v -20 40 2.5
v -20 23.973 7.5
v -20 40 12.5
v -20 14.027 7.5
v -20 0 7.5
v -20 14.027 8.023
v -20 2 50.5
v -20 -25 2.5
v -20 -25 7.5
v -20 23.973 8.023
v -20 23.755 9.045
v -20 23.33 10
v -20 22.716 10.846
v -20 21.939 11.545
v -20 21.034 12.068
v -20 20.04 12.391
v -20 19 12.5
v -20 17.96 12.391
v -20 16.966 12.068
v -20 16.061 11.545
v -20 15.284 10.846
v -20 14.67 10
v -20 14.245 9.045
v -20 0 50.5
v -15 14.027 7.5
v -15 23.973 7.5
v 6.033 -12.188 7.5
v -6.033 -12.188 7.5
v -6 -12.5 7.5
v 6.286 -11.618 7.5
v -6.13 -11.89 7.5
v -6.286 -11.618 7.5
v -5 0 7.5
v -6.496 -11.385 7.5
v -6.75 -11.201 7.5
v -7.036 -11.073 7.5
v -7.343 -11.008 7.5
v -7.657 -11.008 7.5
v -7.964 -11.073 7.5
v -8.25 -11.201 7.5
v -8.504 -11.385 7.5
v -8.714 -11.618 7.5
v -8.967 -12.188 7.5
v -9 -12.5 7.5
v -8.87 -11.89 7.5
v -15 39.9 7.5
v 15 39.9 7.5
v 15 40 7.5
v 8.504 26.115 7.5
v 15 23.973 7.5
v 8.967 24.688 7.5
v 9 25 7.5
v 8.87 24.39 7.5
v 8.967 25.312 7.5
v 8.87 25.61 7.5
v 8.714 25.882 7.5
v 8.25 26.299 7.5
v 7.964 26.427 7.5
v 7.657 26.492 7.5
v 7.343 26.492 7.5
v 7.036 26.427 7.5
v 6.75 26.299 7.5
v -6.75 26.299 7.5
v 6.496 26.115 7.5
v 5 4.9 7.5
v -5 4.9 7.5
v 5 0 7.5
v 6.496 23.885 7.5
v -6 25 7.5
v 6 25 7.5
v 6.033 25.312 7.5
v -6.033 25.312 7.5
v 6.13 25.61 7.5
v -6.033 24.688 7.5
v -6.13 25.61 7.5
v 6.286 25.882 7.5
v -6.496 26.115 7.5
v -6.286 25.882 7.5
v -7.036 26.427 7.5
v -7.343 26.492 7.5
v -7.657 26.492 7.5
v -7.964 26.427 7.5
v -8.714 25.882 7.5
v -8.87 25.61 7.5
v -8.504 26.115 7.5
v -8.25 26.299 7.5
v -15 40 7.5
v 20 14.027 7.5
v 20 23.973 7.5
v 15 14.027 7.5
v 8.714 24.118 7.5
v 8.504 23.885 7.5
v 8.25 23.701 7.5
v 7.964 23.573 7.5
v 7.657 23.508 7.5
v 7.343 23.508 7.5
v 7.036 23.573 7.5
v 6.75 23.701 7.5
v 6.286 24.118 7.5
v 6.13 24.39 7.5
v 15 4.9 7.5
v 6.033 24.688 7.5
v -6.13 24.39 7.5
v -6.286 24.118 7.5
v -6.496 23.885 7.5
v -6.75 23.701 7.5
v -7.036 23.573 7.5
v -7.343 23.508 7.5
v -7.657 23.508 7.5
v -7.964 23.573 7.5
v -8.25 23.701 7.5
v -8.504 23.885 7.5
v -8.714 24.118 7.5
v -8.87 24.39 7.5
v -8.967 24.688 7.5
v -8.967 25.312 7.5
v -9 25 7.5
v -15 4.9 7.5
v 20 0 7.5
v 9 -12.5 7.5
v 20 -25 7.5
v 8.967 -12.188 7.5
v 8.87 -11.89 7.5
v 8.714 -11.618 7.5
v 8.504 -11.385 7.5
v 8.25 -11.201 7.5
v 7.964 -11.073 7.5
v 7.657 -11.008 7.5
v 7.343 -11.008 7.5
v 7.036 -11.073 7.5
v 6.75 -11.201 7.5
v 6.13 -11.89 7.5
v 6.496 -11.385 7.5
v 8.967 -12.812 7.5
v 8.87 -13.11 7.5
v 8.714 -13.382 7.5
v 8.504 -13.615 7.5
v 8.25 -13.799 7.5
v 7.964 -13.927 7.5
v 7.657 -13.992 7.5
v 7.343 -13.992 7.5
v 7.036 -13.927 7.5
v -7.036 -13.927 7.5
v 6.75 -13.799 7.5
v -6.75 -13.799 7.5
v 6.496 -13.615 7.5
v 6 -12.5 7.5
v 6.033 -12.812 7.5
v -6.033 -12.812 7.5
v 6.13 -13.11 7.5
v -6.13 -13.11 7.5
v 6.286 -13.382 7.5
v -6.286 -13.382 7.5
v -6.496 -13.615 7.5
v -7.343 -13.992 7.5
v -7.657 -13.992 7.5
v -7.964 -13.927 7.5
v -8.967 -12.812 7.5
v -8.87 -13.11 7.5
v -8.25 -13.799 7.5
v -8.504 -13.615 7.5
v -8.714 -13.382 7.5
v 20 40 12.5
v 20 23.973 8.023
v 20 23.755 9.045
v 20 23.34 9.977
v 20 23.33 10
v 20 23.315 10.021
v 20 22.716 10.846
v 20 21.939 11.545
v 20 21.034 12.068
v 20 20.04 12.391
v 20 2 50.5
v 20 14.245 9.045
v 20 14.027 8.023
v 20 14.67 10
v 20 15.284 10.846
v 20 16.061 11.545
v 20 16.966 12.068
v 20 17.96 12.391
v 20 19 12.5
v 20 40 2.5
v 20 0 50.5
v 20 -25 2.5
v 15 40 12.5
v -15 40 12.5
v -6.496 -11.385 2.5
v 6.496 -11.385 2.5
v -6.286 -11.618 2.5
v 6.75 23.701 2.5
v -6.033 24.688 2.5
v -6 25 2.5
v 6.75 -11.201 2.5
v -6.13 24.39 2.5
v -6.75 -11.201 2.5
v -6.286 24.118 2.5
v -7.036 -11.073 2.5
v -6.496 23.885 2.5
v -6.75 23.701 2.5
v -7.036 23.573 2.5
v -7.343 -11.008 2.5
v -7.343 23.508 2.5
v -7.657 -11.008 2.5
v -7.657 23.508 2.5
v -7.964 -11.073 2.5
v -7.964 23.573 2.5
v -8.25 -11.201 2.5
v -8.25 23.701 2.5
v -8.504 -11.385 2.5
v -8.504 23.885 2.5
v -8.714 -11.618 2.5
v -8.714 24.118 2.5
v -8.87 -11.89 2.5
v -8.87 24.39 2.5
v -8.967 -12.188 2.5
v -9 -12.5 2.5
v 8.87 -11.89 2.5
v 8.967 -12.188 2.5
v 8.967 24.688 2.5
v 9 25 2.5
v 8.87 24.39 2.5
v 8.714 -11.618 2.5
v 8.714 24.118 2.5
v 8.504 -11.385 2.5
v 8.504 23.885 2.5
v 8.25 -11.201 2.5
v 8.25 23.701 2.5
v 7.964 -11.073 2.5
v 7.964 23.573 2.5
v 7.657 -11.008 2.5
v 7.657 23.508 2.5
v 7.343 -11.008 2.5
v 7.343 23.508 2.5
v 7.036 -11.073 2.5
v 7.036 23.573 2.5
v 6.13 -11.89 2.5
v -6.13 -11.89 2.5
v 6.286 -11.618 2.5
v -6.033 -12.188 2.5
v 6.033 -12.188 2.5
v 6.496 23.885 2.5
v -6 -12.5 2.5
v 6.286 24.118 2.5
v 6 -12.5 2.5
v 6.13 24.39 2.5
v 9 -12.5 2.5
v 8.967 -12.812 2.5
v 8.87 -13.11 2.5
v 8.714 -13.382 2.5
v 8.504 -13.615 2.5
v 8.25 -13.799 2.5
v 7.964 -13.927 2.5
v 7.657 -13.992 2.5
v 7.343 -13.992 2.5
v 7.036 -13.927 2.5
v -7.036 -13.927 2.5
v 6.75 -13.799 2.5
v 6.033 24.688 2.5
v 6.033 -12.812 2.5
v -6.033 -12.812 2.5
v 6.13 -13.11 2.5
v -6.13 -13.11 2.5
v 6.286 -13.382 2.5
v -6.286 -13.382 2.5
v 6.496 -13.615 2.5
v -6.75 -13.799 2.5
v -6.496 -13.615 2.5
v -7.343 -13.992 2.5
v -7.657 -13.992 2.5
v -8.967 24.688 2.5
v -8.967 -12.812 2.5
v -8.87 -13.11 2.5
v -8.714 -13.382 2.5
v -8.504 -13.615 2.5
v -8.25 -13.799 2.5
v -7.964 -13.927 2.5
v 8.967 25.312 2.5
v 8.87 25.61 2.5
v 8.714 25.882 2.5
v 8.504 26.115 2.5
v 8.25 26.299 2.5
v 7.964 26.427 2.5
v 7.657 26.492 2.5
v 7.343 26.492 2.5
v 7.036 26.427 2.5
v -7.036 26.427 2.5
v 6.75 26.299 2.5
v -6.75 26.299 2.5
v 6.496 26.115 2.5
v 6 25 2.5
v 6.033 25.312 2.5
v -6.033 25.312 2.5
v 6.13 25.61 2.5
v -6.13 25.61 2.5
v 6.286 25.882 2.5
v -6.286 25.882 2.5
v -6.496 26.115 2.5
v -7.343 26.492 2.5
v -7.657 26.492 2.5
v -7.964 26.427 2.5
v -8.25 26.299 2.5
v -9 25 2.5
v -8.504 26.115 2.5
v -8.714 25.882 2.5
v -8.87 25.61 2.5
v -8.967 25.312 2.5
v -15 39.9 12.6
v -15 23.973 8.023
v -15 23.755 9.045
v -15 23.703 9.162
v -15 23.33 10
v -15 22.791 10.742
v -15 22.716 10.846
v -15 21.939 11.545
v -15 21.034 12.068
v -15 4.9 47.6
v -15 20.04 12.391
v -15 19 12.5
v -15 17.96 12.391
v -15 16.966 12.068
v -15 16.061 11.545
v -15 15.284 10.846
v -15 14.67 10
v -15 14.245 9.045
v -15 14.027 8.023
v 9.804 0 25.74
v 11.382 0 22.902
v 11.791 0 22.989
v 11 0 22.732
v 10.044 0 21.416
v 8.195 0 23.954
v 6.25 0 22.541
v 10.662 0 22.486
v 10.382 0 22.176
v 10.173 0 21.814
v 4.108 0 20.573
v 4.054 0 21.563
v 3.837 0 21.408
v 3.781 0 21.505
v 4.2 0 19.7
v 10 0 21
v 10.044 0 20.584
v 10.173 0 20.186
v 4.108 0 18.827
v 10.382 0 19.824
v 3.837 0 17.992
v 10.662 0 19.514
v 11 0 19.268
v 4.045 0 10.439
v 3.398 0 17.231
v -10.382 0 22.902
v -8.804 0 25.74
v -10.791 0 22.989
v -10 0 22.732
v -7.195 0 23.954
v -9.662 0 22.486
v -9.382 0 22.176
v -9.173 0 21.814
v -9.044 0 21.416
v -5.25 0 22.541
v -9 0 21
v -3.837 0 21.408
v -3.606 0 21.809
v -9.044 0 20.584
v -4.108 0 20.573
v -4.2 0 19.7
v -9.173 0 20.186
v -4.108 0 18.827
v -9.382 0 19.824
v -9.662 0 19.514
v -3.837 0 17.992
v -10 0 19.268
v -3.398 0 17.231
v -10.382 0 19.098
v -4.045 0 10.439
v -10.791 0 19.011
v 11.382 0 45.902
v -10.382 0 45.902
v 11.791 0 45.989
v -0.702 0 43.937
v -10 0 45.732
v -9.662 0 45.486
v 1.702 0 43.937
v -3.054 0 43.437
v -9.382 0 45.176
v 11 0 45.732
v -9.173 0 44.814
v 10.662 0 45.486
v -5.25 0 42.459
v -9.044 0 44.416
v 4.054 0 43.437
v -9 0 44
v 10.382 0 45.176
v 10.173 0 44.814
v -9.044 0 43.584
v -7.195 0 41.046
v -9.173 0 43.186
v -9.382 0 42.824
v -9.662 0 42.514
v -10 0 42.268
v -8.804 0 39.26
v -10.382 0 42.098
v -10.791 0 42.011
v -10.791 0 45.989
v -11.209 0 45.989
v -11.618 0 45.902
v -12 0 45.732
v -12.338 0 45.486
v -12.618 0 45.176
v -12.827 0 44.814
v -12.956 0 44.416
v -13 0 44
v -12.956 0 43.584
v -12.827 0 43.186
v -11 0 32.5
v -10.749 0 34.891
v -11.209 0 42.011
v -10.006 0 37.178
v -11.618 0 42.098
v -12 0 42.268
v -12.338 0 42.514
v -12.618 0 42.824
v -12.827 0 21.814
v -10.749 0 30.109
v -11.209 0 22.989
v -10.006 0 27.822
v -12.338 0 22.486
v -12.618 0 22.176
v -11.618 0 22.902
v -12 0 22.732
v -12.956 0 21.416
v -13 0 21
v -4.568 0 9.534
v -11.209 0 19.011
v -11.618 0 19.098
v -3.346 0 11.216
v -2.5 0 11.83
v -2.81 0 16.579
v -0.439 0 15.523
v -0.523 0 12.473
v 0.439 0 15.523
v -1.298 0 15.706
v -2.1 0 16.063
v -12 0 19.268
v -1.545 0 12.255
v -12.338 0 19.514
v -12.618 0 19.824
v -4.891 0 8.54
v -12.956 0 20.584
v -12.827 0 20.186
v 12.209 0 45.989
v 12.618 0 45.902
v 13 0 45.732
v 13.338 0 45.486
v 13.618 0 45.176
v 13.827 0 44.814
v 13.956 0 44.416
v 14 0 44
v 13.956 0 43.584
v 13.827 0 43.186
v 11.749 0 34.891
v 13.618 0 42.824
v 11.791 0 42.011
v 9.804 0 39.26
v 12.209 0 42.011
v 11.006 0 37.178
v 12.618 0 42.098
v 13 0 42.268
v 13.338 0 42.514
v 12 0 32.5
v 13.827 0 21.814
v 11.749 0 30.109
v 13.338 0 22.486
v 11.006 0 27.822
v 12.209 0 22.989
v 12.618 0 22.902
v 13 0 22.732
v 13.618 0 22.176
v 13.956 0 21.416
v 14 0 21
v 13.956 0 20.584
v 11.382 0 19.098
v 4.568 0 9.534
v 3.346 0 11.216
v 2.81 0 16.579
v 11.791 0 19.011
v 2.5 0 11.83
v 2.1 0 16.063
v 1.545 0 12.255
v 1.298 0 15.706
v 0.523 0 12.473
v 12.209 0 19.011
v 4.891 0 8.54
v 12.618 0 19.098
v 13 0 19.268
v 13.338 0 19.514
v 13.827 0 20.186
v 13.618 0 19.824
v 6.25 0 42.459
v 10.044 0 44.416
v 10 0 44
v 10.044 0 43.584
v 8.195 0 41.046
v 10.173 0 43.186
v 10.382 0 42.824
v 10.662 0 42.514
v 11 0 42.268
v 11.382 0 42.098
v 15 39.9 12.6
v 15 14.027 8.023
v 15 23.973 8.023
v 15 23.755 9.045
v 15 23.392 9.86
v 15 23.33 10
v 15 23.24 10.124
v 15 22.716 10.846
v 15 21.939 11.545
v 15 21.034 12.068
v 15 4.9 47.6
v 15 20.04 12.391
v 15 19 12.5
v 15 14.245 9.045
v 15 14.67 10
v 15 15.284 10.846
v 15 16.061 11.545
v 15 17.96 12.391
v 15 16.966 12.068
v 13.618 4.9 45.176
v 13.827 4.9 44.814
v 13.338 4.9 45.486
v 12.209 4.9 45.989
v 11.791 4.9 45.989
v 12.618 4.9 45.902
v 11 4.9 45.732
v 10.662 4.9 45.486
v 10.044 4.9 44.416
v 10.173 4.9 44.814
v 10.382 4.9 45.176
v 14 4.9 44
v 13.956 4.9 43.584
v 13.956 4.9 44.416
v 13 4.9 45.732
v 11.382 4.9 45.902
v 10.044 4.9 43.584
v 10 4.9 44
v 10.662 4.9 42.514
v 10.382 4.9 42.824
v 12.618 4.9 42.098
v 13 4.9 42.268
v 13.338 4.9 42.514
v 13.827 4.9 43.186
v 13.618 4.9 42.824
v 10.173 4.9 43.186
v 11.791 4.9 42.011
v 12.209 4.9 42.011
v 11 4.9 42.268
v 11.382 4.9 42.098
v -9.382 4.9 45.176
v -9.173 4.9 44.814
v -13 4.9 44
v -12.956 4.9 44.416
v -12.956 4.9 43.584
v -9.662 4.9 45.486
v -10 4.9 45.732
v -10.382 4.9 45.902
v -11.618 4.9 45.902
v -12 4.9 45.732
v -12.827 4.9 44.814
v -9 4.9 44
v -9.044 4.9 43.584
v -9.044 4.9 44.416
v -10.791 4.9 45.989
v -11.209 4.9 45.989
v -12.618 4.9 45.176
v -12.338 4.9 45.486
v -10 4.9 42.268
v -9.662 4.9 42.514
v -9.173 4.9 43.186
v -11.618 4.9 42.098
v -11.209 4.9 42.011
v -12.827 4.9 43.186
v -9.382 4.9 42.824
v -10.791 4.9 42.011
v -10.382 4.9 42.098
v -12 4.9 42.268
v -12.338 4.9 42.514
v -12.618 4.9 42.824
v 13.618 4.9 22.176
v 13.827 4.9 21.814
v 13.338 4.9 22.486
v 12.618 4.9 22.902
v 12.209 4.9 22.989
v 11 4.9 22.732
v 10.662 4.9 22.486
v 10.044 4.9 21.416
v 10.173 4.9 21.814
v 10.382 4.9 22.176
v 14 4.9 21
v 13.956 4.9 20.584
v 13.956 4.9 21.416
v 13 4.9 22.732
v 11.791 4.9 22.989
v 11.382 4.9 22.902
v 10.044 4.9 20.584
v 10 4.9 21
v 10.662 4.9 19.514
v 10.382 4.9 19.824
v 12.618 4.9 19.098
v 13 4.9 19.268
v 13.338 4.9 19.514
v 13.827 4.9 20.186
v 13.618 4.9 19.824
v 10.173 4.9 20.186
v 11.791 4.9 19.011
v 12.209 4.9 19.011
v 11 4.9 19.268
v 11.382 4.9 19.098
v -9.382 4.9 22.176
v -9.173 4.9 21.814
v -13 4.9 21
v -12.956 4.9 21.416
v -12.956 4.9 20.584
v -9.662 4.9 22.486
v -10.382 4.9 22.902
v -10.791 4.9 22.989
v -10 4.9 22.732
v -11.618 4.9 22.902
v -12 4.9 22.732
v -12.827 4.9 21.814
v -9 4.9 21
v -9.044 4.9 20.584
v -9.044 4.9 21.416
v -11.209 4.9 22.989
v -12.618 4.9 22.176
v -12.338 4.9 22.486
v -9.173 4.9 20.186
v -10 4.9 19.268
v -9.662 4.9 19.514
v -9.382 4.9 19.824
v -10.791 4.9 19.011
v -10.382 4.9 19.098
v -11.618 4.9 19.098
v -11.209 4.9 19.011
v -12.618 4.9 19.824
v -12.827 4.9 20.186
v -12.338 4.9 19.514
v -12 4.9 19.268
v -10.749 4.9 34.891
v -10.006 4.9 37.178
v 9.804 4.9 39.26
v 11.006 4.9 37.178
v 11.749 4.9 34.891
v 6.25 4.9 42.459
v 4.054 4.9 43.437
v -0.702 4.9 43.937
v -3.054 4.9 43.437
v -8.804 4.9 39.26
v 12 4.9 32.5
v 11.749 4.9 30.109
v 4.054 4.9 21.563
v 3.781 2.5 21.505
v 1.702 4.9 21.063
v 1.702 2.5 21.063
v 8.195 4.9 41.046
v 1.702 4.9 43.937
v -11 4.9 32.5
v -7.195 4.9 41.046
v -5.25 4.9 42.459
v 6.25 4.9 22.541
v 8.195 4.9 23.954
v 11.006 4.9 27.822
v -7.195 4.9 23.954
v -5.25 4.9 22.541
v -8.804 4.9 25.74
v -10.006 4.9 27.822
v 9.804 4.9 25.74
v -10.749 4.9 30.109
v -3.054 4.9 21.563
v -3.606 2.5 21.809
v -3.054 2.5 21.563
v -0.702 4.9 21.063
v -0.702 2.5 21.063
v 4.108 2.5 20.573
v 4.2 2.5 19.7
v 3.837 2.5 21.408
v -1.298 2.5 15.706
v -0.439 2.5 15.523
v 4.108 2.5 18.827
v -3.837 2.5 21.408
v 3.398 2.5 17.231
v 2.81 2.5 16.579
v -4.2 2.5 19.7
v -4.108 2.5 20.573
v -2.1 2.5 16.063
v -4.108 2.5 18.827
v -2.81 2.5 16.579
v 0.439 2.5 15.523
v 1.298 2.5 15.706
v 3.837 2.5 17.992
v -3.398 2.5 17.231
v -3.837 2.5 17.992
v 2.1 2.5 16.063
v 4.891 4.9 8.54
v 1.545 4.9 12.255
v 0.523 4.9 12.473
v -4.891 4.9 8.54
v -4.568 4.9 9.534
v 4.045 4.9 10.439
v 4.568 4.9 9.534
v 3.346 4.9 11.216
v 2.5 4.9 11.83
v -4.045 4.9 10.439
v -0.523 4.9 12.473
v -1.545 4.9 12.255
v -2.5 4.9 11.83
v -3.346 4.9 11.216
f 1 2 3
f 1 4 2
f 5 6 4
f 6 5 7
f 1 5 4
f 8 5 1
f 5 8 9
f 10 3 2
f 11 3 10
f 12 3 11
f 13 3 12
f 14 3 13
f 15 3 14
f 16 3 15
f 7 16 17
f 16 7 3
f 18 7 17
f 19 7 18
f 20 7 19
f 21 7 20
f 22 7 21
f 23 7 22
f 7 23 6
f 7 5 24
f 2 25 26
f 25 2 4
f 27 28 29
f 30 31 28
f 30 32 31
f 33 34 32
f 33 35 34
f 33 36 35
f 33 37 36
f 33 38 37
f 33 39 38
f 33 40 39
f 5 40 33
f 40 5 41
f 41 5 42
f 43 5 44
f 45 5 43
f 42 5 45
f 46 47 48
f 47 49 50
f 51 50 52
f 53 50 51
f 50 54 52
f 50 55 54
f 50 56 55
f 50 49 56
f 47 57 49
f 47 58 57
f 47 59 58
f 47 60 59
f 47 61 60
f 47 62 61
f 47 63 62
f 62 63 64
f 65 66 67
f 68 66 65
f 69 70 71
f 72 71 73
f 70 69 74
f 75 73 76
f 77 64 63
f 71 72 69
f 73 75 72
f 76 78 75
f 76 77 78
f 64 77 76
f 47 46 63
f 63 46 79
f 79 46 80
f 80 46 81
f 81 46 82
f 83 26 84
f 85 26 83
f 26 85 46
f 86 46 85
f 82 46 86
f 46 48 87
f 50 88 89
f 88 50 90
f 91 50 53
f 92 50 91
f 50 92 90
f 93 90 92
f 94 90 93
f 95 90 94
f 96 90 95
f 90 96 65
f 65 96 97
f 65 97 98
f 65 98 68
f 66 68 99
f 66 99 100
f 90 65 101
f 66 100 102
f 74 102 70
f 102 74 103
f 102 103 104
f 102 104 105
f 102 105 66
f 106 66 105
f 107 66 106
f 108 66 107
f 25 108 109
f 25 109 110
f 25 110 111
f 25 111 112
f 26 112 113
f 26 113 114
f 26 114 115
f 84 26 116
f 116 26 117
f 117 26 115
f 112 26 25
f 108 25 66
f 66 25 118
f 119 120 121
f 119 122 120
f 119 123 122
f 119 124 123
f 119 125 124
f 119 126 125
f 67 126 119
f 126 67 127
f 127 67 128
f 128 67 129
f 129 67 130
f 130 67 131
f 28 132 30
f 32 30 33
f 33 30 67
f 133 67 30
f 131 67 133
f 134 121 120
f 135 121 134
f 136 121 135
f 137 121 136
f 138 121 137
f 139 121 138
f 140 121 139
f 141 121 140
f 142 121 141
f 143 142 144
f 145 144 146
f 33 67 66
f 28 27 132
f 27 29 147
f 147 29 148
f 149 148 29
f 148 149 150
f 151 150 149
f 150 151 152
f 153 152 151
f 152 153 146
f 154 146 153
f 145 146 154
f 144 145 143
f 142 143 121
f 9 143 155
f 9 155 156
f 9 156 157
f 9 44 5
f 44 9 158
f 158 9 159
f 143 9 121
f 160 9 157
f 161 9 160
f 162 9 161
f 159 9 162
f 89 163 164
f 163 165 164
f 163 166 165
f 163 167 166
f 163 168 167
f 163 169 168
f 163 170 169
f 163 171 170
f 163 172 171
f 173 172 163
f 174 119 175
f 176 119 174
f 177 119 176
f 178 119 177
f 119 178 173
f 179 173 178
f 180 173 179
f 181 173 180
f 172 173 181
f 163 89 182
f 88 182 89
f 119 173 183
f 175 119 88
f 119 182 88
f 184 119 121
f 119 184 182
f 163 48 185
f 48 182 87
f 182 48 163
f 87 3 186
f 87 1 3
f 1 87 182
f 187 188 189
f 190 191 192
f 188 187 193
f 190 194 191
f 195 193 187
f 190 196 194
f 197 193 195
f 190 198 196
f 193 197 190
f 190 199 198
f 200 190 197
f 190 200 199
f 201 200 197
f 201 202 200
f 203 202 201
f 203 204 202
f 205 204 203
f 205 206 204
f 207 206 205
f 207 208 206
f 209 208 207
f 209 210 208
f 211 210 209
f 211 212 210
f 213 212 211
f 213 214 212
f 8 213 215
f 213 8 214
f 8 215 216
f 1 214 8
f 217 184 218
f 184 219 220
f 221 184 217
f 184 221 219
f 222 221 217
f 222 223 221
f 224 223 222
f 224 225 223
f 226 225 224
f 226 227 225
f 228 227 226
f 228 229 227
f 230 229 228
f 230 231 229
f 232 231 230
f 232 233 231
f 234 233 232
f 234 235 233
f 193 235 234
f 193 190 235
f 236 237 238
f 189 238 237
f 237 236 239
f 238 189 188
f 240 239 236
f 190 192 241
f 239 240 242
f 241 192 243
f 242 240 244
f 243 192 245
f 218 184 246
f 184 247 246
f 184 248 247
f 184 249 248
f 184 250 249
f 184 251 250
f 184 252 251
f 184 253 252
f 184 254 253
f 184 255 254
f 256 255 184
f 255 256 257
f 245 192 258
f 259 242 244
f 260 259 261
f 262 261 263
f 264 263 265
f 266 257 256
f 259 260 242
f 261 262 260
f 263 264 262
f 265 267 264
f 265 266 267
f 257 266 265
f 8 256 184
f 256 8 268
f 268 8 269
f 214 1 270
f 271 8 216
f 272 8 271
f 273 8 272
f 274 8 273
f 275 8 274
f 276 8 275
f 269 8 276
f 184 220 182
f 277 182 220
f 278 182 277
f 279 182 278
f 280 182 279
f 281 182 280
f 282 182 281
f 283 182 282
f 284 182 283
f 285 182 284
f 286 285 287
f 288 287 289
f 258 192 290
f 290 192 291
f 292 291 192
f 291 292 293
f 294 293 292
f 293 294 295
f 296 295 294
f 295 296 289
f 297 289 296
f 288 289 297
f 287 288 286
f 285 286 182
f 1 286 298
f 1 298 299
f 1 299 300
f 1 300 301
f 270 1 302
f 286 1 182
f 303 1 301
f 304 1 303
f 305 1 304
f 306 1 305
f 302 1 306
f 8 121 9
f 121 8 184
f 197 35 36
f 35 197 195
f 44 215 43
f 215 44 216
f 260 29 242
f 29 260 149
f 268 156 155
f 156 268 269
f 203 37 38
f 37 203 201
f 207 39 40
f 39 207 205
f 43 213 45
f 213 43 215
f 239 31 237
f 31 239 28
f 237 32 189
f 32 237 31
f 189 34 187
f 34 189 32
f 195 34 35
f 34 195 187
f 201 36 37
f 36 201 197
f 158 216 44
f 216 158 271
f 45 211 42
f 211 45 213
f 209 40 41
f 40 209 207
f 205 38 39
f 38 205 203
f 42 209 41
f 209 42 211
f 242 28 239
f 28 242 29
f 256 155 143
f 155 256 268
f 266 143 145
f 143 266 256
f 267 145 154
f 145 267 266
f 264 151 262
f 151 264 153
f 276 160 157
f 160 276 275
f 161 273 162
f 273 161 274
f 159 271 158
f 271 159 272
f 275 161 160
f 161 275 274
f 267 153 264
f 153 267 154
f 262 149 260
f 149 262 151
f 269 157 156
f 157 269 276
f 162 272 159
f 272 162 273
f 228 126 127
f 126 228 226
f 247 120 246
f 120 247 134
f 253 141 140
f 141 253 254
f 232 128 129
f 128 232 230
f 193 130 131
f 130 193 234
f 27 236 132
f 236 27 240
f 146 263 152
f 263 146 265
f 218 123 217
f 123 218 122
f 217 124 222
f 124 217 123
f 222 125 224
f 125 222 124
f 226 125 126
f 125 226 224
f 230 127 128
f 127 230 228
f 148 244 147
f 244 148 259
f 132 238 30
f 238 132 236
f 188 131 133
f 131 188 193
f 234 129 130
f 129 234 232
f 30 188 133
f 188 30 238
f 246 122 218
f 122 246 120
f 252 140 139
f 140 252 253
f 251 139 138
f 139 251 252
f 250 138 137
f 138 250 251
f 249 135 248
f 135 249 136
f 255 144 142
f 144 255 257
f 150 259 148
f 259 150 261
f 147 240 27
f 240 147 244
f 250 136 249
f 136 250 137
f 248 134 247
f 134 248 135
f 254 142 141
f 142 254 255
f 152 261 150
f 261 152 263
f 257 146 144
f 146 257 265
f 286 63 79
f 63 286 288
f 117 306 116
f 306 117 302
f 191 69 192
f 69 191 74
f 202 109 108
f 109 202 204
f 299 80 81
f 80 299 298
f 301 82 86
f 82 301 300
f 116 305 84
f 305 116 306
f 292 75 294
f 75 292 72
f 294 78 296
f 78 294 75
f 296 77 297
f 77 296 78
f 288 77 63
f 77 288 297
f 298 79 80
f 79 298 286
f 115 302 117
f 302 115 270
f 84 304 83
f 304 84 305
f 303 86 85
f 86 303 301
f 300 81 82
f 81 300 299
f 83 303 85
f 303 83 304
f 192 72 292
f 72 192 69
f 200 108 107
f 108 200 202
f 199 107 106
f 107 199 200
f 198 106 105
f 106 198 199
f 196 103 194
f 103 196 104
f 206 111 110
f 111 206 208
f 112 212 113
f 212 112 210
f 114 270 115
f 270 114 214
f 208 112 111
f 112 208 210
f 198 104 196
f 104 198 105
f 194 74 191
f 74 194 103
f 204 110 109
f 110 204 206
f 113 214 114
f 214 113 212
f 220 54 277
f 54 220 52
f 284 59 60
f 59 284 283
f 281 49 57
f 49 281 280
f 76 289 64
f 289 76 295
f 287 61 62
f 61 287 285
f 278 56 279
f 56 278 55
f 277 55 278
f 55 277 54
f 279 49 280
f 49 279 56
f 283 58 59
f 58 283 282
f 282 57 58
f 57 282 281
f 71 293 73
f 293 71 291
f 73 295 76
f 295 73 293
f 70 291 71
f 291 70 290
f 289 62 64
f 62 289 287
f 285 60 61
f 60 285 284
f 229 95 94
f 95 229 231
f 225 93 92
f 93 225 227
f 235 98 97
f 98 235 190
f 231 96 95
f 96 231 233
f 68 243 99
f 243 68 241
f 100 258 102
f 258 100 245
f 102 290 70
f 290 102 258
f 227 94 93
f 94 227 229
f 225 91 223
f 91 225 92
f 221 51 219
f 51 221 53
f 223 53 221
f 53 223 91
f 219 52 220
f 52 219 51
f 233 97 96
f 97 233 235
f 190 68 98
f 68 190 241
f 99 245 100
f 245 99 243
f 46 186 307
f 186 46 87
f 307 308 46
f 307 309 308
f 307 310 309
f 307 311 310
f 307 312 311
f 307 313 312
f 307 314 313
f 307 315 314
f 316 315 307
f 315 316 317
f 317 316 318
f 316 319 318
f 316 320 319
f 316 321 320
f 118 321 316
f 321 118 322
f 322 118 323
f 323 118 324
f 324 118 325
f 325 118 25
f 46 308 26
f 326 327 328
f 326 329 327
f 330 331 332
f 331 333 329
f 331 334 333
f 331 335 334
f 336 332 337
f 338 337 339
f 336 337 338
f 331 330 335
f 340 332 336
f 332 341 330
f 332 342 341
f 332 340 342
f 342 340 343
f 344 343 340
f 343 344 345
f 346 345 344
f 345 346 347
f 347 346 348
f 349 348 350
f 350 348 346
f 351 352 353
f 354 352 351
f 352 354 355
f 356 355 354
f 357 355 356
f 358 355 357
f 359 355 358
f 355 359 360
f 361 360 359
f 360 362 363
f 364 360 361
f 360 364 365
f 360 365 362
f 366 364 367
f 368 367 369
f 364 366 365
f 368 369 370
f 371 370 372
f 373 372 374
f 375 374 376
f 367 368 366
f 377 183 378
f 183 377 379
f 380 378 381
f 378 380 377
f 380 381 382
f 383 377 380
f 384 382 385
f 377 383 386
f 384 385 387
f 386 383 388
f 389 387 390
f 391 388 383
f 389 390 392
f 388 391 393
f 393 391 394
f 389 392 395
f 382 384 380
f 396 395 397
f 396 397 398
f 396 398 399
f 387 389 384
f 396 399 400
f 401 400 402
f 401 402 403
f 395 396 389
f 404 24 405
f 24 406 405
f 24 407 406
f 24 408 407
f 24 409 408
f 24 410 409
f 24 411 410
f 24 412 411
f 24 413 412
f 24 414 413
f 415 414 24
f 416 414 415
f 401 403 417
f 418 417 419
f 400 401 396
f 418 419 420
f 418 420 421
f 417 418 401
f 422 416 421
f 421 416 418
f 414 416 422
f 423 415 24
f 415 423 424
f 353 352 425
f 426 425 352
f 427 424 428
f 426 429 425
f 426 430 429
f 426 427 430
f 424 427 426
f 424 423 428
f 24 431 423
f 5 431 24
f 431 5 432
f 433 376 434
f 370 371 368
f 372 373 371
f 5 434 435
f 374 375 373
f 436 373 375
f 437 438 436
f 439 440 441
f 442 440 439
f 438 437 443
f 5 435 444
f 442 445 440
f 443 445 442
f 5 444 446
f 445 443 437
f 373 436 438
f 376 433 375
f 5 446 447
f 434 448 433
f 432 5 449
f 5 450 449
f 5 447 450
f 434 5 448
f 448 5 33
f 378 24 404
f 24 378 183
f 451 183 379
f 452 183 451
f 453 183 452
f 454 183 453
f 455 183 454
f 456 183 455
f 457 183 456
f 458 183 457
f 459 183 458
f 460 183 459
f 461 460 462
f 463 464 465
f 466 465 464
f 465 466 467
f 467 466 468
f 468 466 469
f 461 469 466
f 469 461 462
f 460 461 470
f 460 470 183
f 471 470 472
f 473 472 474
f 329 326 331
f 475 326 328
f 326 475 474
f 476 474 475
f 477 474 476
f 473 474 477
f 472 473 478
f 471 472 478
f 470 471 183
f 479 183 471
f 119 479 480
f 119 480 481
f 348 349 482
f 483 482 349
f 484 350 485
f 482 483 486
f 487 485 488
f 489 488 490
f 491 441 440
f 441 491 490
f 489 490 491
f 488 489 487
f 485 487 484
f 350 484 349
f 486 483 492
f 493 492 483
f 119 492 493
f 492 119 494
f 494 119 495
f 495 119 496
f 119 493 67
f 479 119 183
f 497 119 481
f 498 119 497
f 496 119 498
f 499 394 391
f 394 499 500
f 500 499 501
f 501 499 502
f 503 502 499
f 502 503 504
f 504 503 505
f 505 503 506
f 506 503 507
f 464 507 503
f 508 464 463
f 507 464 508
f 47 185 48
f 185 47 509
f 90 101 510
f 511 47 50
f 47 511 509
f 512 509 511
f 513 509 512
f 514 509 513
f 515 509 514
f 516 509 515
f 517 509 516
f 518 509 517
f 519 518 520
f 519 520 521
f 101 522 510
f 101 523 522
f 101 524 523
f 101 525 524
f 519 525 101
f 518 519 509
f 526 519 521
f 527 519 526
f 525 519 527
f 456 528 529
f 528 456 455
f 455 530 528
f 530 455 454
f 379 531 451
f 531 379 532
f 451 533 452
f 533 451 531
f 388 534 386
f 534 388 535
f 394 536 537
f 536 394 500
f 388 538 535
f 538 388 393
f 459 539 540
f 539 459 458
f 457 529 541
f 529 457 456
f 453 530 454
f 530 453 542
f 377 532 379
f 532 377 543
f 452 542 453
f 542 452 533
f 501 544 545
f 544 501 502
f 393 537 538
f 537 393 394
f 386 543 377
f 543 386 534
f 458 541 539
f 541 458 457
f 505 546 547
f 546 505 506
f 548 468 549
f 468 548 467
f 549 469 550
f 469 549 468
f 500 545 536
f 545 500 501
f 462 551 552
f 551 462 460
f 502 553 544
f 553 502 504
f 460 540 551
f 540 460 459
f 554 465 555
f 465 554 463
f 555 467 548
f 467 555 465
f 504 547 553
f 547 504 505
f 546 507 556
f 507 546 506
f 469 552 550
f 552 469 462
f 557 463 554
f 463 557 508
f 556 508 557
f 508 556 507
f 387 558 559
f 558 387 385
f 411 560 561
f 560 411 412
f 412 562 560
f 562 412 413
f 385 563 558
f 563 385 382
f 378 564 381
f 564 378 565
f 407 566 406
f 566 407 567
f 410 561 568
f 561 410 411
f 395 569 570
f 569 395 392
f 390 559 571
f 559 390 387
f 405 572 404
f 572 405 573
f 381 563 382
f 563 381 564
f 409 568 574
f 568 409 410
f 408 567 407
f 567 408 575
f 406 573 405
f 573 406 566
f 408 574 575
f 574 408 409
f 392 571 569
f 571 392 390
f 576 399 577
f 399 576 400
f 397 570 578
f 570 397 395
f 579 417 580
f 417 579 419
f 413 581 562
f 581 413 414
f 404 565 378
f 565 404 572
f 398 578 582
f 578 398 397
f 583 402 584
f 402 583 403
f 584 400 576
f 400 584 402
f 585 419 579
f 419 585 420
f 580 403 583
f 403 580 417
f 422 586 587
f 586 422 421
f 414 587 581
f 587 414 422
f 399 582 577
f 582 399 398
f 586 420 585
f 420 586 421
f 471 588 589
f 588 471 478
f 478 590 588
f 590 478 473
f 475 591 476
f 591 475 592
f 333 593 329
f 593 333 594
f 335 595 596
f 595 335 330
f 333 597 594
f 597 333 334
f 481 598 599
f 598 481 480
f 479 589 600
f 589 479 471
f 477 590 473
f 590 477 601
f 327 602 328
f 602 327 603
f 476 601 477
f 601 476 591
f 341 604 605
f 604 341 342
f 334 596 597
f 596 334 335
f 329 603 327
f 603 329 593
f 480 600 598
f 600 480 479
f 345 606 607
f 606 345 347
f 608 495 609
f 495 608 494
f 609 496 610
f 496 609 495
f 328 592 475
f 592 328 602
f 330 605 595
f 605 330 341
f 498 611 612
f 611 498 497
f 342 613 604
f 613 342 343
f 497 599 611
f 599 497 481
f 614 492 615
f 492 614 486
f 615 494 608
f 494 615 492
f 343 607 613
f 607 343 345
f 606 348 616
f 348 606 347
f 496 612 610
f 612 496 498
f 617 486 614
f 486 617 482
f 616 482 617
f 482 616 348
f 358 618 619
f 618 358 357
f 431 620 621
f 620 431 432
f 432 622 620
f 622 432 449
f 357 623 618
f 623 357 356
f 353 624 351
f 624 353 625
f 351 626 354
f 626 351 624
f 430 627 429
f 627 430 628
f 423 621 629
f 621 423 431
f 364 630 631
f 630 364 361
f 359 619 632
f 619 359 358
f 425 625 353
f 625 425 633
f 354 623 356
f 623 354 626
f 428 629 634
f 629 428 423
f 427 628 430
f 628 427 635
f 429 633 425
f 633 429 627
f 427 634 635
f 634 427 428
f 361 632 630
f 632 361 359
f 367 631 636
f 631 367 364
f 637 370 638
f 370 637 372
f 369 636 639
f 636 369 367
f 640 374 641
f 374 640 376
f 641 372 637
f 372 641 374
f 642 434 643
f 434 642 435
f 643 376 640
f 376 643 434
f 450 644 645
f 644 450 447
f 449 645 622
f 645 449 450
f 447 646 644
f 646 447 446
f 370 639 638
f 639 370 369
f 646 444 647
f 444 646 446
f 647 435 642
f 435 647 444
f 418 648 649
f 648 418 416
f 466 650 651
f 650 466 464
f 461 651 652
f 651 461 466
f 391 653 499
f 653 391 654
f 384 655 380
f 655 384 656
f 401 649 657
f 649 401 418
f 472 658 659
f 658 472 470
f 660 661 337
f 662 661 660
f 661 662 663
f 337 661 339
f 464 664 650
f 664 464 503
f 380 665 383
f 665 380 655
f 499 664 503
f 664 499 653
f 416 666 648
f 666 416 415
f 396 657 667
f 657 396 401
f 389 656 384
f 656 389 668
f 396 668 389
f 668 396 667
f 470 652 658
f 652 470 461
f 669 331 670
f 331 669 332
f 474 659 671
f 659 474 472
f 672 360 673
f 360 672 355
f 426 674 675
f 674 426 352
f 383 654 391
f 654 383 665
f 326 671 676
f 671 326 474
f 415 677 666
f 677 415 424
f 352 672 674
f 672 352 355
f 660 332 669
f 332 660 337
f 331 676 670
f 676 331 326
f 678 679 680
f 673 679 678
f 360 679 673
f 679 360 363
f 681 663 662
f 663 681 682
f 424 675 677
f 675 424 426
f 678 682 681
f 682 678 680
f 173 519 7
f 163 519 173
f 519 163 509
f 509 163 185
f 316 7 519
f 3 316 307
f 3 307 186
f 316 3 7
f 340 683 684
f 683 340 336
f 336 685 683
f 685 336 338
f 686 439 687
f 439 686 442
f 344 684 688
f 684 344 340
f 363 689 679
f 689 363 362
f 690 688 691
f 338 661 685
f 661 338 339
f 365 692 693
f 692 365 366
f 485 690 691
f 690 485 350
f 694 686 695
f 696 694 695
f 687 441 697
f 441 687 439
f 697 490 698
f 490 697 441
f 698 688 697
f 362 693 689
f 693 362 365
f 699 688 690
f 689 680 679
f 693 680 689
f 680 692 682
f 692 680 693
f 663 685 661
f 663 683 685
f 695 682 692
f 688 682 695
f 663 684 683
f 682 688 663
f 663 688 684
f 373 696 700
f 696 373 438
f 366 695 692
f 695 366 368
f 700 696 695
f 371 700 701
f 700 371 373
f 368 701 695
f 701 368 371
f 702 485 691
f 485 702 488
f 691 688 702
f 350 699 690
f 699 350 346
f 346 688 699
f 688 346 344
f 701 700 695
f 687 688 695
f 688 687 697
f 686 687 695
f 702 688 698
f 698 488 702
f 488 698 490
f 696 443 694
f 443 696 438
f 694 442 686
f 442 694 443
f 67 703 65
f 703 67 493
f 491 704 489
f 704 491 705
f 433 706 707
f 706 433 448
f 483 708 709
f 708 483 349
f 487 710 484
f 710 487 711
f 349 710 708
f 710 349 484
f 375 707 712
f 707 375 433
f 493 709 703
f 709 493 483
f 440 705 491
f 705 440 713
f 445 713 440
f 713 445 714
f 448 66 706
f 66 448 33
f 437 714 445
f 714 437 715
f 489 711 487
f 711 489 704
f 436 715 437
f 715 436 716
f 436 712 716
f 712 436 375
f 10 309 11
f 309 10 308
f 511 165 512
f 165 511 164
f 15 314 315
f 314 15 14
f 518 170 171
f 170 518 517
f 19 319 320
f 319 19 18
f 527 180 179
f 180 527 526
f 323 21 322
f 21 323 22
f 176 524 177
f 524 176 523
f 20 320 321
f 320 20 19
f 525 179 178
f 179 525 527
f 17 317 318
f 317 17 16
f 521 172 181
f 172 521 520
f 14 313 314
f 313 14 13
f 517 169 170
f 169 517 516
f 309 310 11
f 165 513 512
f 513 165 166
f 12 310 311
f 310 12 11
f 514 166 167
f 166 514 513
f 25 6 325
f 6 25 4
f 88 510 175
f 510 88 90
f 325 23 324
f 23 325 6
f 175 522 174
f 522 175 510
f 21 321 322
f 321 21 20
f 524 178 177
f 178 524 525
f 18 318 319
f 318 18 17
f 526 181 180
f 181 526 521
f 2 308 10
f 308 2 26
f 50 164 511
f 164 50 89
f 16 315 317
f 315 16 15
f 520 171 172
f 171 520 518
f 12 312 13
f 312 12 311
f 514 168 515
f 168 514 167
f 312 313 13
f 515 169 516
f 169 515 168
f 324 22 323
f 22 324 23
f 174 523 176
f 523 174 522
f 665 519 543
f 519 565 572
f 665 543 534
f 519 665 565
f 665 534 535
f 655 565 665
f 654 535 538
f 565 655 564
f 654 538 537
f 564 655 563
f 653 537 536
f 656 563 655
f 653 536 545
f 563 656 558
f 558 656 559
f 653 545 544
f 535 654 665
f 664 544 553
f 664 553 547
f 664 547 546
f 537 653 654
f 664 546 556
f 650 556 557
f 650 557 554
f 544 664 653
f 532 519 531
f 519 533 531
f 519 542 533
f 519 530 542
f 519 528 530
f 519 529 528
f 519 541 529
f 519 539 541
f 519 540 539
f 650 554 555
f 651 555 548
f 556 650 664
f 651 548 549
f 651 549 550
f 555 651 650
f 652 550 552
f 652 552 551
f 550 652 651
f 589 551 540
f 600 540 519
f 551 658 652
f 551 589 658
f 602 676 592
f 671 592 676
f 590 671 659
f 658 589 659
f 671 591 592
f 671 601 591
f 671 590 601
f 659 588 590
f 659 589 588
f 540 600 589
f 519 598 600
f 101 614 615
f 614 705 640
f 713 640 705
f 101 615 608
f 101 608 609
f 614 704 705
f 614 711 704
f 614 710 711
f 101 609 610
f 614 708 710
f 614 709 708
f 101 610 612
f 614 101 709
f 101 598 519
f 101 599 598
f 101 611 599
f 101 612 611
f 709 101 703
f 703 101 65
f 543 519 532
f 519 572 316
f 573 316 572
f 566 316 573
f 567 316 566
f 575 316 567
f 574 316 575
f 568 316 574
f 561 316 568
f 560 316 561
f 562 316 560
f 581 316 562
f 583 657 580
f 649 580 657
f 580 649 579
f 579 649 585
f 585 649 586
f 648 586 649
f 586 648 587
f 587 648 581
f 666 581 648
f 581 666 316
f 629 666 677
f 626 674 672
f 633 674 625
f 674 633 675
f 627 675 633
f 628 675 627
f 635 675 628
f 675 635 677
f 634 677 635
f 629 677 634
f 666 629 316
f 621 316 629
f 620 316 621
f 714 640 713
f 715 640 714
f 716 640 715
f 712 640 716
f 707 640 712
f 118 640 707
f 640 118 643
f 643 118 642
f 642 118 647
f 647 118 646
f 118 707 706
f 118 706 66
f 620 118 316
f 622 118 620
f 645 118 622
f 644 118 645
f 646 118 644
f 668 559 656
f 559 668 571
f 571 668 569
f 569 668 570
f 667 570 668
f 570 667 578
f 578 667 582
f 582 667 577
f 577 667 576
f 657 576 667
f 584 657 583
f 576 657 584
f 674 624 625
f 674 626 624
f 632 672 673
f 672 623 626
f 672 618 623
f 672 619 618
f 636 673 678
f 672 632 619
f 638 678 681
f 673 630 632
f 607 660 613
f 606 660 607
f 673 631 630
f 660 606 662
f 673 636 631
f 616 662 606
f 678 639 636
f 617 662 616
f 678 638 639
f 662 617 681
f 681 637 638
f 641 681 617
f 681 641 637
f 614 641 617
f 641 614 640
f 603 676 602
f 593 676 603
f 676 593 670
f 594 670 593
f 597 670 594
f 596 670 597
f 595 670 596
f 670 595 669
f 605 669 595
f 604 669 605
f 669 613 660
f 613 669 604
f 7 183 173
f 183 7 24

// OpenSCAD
// file: syringePumpConstants.scad
/* === Project-universal Constants === */

//Not all of these variables are used in this specific model,
//but the same variable set is used across all models in this project.

$fs = 0.1;

inch = 25.4; //for mm conversion

//width of base

// 8020 profile is 1 inch wide
//baseSizeY = 2*inch;
//screwPlateSize = 25;	
//screwRadius = 3.5;

// OpenBeam is 15mm wide
baseSizeY = 2*15;
screwPlateSize = 15;	
screwRadius = 1.5;

centerY = baseSizeY / 2; //both axes go right down the middle of the base

//stepper motor
stepperZSize = 42;
stepperYSize = 42;

//608 bearing 
bearing608Height = 8.5;
bearing608Diameter = 22.5;

//height of holder for 80/20 screws
mountPlateHeight = 5;

//axis heights
threadedAxisHeight = stepperZSize/2 + mountPlateHeight + 4;
echo("threadedAxisHeight ", threadedAxisHeight);
smoothAxisHeight = (threadedAxisHeight-6.6) / 2;
smoothRodRadius = 4.2;

//syringe properties
//barrelDiameter = 25;
//
//barrelSlotThickness = 3;
//barrelSlotHeight = 28;

// 20ml BD plastic disposable syringe REF 302830
barrelDiameter = 21.4;
barrelSlotThickness = 3;
barrelSlotHeight = 28;

syringeCenterHeight = threadedAxisHeight + bearing608Diameter/2 + 4 + barrelDiameter/2;

//fixes render oddities
floatCorrection = 0.001; 
floatCorrection2 = 2*floatCorrection; 
// main file
include <syringePumpConstants.scad>


space_above_floor = 2.5;

wall_thickness = 5;
//	motor_width = 42; // NEMA 17
motor_width = 28; // NEMA 11
frame_width = motor_width + (wall_thickness + 1)*2;
bolt = 4;
//height = 25;
height= threadedAxisHeight;
//	inch = 25.4;
//	screwPlateSize = 25;	
//	screwRadius = 3.25;

inch = 15;
screwPlateSize = 25;	
screwRadius = 1.5;

//these are all the mount point holes.
x1 = -wall_thickness;
y1 = wall_thickness*2;
x2 = frame_width+wall_thickness;
y2 = wall_thickness*2;
x3 = -wall_thickness;
y3 = frame_width-wall_thickness*2;
x4 = frame_width + wall_thickness;
y4 = frame_width-wall_thickness*2;

translate([0,0,wall_thickness + space_above_floor]){
nema_17_mount();
}
    module nema_17_mount()
    {
        //center the whole thing in X
        translate([-frame_width/2, 0, 0])
        {

            //floor, with mounting holes for 80/20
                
            translate([0,-screwPlateSize,-wall_thickness]){
                difference(){
                    cube(size=[frame_width,frame_width+screwPlateSize,wall_thickness]);
           //left front hole
                    translate([frame_width/2-inch/2, screwPlateSize/2, 0]){
                        cylinder(h=wall_thickness, r=screwRadius);
                    }
               //right front hole
                    translate([frame_width/2+inch/2, screwPlateSize/2, 0]){
                        cylinder(h=wall_thickness, r=screwRadius);
                        }
        //left back hole
        translate([frame_width/2-inch/2, screwPlateSize*2, 0]){
                        cylinder(h=wall_thickness, r=screwRadius);
                    }
         //right back hole
                    translate([frame_width/2+inch/2, screwPlateSize*2, 0]){
                        cylinder(h=wall_thickness, r=screwRadius);               
                    }

                }
            }

            difference()
            {
                //build the main unit.
                union()
                {
                    //structure
                    cube([wall_thickness, frame_width, frame_width]); //front face
                    cube([frame_width, wall_thickness, frame_width+10]); //left face
                    translate([frame_width-wall_thickness, 0, 0])     //right face
                        cube([wall_thickness, frame_width, frame_width]);

                }


                //front left mount hole
                echo(x1, y1);
                translate([x1, y1, 0])
                {
                    cylinder(r=bolt/2, h=wall_thickness);
                    translate([0,0,wall_thickness])
                        cylinder(r=bolt, h=wall_thickness*2);
                }
                
                //front right mount hole
                echo(x2, y2);
                translate([x2, y2, 0])
                {
                    cylinder(r=bolt/2, h=wall_thickness);
                    translate([0,0,wall_thickness])
                        cylinder(r=bolt, h=wall_thickness*2);			
                }
                
                //rear left mount hole
                echo(x3, y3);
                translate([x3, y3, 0])
                {
                    cylinder(r=bolt/2, h=wall_thickness);
                    translate([0,0,wall_thickness])
                        cylinder(r=bolt, h=wall_thickness*2);
                }
                
                //rear right mount hole
                echo(x4, y4);
                translate([x4, y4, 0])
                {
                    cylinder(r=bolt/2, h=wall_thickness);
                    translate([0,0,wall_thickness])
                        cylinder(r=bolt, h=wall_thickness*2);
                }
                
                //mount hole slits
                translate([frame_width + wall_thickness*1.5, frame_width-wall_thickness*2, wall_thickness/2])
                    cube(size=[wall_thickness, 0.1, wall_thickness*3 +2], center=true);
                translate([frame_width + wall_thickness*1.5, wall_thickness*2, wall_thickness/2])
                    cube(size=[wall_thickness, 0.1, wall_thickness*3], center=true);
                translate([-wall_thickness*1.5, frame_width-wall_thickness*2, wall_thickness/2])
                    cube(size=[wall_thickness, 0.1, wall_thickness*3], center=true);
                translate([-wall_thickness*1.5, wall_thickness*2, wall_thickness/2])
                    cube(size=[wall_thickness, 0.1, wall_thickness*3], center=true);

                //nema 17 mount
                rotate([90, 0, 0])
                {
                    translate([frame_width/2+0.5, height - 5, -wall_thickness])
                    {
    //					translate([15.5, 15.5, 0])
    //						cylinder(r=bolt/2, h=wall_thickness+1);
    //					translate([-15.5, 15.5, 0])
    //						cylinder(r=bolt/2, h=wall_thickness+1);
    //					translate([15.5, -15.5, 0])
    //						cylinder(r=bolt/2, h=wall_thickness+1);
    //					translate([-15.5, -15.5, 0])
    //						cylinder(r=bolt/2, h=wall_thickness+1);

                        translate([11.5, 11.5, 0])
                            cylinder(r=bolt/2, h=wall_thickness+1);
                        translate([-11.5, 11.5, 0])
                            cylinder(r=bolt/2, h=wall_thickness+1);
                        translate([11.5, -11.5, 0])
                            cylinder(r=bolt/2, h=wall_thickness+1);
                        translate([-11.5, -11.5, 0])
                            cylinder(r=bolt/2, h=wall_thickness+1);

                        cylinder(r=11.5, h=wall_thickness+1);

   
                    }
                }

                //back slant cutaway
                translate([0, 0, frame_width+wall_thickness])
                    rotate([45, 0, 0])
                        translate([-frame_width, 0, -frame_width*2])
                            cube(size=[frame_width*4, frame_width*2, frame_width*4]);

        //hole for smooth rod (needs to fit fairly tight)
                
        //  #translate([-floatCorrection + mountXSize +floatCorrection2,centerY,smoothAxisHeight + 0.5]){
            #translate([frame_width/2,wall_thickness/2,smoothAxisHeight + 0.5]){
            //rotate(a=[0,270,0]){
                rotate(a=[90,0,0]){
                cylinder(h=(wall_thickness), r=smoothRodRadius);
            }
        }

                //front anti-warp circle
                #translate([frame_width/2, wall_thickness*1.25, 0])
                    rotate([90, 0, 0])
                        cylinder(r=wall_thickness, h=wall_thickness*2);

                //middle anti-warp circle			
                translate([0, motor_width/2 + wall_thickness, 0])
                    rotate([0, 90, 0])
                        cylinder(r=wall_thickness, h=frame_width+1);

                //cutout / tidy up cubes.
                translate([wall_thickness, wall_thickness-0.1, -1])
                    cube([frame_width-wall_thickness*2, frame_width-wall_thickness, motor_width*2]);
                translate([-frame_width/2,-frame_width/2, wall_thickness+motor_width+10])
                    cube([frame_width*2, frame_width*2, frame_width]);
                translate([-frame_width/2, -frame_width/2,-frame_width])
                    cube([frame_width*2, frame_width*2, frame_width]);
            }
        }
    }
